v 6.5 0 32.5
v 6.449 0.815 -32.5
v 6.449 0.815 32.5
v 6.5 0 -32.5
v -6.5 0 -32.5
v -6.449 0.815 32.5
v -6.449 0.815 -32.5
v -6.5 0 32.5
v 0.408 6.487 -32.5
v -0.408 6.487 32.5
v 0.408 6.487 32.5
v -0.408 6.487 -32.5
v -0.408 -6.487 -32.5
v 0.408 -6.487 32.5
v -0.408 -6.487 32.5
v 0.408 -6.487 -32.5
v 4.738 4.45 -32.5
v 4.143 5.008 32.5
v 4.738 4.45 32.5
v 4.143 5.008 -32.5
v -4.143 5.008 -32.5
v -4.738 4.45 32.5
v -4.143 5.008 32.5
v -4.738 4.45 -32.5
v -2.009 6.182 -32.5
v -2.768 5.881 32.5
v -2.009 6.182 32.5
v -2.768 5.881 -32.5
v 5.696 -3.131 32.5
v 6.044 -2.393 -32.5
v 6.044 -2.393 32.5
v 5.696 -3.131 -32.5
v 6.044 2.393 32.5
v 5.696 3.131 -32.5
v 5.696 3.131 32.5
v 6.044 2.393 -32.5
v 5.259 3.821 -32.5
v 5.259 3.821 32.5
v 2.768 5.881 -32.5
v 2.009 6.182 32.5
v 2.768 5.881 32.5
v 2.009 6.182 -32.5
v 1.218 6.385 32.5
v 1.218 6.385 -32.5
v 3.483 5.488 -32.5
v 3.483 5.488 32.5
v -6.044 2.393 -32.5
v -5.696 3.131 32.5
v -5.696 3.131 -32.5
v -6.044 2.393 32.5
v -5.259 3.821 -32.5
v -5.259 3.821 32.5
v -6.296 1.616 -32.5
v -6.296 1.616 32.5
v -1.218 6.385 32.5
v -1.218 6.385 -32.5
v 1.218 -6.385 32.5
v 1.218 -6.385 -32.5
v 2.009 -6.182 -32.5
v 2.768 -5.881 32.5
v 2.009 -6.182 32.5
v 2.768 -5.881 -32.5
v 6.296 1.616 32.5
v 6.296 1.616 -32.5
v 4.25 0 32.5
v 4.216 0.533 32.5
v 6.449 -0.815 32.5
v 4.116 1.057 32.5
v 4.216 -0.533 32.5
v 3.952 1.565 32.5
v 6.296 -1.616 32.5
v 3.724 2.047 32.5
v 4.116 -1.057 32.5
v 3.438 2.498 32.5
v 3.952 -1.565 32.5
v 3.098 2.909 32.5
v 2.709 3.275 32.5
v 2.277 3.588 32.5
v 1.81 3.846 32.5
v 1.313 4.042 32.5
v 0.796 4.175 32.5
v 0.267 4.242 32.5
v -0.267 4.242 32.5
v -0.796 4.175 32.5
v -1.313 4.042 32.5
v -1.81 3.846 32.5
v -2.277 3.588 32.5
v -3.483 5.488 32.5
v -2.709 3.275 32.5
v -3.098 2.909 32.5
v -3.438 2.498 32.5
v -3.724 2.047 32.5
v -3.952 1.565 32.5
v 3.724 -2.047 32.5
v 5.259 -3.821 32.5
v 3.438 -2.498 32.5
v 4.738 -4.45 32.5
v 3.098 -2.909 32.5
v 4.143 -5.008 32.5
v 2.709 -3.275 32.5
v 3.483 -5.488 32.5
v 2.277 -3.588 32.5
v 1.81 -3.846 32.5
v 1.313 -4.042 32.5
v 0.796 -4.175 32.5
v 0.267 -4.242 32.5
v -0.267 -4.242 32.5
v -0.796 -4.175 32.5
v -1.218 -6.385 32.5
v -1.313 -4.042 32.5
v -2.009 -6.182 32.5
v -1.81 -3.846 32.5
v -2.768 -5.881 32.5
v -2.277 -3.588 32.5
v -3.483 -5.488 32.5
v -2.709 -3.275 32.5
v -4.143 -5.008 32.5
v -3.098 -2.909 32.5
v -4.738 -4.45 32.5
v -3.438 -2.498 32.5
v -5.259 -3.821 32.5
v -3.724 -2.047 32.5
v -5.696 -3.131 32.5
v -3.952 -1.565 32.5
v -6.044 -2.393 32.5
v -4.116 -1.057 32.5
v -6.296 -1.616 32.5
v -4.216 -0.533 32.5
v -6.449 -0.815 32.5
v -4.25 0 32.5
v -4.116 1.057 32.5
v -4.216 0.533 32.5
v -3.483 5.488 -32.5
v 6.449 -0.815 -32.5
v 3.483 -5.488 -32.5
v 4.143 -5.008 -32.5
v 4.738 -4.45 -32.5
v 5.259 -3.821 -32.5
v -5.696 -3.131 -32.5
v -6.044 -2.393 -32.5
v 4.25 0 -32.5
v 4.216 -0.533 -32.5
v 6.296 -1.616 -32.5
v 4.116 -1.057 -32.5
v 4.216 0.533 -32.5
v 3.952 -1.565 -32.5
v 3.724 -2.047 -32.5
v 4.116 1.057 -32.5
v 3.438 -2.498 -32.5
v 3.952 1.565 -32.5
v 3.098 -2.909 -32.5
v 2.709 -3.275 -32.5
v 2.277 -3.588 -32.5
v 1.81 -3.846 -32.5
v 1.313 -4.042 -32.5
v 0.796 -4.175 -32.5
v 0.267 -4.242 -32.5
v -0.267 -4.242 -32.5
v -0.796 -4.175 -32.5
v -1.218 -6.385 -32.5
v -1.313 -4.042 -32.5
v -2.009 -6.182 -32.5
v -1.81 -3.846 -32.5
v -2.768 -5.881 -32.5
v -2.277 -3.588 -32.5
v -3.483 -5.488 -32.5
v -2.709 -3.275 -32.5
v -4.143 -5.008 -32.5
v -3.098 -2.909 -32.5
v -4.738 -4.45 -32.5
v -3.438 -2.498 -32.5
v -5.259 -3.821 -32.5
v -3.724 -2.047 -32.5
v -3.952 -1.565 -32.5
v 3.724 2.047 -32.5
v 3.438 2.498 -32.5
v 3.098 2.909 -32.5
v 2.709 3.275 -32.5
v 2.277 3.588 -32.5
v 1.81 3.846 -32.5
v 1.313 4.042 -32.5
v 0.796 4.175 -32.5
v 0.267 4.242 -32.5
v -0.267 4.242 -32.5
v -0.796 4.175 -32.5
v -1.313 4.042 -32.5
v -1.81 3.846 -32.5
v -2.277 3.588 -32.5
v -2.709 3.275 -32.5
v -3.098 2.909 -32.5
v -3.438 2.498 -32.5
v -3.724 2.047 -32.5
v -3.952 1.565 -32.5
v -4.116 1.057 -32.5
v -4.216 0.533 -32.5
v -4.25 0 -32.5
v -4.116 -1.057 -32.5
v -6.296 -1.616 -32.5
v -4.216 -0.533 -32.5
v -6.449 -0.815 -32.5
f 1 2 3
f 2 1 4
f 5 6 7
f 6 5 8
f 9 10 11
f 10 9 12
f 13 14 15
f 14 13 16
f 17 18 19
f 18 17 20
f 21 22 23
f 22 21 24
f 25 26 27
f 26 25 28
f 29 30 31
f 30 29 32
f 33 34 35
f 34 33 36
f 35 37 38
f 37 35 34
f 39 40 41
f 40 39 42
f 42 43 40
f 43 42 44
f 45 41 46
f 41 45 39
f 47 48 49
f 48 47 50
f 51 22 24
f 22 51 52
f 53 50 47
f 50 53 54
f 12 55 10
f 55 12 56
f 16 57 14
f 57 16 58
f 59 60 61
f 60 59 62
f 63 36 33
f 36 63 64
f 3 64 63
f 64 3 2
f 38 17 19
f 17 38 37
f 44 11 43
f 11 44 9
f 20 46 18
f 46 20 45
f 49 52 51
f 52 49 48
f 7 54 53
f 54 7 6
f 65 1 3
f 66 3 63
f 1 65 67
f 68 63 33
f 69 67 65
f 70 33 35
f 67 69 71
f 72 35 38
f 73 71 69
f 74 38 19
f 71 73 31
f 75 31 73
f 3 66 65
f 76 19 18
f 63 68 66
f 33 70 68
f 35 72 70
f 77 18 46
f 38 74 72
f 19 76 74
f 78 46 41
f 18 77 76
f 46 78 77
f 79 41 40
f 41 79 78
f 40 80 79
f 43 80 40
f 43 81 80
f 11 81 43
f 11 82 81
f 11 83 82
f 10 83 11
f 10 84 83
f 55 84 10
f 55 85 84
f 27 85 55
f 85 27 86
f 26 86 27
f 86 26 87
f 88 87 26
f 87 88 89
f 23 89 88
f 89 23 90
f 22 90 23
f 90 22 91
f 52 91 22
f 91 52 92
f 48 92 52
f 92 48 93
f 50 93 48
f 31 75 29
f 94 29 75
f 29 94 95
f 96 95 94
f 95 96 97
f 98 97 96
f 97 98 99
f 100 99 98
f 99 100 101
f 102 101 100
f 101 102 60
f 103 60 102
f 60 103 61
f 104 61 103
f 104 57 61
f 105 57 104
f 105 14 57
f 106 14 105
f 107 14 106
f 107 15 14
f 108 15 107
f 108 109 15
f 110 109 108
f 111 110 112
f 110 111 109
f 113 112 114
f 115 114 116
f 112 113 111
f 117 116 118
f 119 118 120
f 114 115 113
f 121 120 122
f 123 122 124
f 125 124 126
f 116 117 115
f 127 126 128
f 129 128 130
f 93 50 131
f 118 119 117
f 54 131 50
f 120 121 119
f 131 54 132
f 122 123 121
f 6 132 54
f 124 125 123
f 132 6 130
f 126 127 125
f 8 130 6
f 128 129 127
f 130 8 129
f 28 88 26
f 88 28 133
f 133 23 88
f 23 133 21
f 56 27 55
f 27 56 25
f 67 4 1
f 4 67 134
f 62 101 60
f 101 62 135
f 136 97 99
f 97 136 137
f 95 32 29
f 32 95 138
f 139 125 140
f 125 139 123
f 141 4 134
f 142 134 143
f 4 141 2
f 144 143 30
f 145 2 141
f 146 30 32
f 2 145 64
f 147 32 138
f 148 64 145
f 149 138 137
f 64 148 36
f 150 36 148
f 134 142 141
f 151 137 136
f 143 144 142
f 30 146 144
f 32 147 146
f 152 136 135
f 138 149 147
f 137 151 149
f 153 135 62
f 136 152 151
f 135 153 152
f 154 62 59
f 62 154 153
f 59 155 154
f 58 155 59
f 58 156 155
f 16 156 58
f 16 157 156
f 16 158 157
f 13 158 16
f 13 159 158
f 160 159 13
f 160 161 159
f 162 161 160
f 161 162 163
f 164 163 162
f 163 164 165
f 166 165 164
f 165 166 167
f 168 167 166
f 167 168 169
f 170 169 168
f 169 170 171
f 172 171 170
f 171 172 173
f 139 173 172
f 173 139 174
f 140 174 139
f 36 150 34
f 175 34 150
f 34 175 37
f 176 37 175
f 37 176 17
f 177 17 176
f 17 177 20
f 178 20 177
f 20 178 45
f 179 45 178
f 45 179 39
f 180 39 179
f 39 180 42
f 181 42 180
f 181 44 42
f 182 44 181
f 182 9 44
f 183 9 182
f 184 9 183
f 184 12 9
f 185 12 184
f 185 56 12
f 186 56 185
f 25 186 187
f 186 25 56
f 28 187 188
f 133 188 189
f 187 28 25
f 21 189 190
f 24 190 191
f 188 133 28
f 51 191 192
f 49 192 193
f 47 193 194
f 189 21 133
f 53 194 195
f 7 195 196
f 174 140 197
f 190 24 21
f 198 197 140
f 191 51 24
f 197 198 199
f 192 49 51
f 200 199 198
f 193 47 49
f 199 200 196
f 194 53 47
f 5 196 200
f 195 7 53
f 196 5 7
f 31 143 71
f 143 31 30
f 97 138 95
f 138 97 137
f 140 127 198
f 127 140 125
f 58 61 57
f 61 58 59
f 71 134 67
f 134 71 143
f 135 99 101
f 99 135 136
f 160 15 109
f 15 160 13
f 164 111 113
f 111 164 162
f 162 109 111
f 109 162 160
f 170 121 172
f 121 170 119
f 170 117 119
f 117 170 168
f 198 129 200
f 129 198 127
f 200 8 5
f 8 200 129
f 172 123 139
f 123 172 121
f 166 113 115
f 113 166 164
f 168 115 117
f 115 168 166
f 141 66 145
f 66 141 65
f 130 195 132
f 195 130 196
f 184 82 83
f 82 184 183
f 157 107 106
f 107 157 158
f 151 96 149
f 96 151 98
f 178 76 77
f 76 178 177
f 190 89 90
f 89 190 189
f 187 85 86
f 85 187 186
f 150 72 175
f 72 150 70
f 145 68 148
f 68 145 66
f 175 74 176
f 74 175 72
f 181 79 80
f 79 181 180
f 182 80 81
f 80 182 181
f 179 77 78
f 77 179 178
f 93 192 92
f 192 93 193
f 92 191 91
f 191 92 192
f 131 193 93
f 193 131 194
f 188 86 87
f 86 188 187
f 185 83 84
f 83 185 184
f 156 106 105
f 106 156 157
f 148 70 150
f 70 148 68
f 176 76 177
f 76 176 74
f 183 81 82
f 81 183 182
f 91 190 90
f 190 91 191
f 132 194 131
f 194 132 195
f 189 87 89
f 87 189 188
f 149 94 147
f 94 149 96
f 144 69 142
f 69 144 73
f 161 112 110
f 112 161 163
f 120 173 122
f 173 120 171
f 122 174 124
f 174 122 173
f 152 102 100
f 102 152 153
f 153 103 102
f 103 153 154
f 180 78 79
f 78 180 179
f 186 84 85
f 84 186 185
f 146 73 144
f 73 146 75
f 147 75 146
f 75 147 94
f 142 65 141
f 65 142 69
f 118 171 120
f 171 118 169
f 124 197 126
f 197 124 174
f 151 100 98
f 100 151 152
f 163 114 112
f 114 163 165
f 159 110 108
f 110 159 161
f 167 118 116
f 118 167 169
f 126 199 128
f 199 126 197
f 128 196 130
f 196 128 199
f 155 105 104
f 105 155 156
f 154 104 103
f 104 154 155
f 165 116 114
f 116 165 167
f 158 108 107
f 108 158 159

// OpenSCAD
$fn = 50;


difference() {
	union() {
		translate(v = [0, 0, -32.5000000000]) {
			cylinder(h = 65, r = 6.5000000000);
		}
	}
	union() {
		translate(v = [0, 0, -100.0000000000]) {
			cylinder(h = 200, r = 4.2500000000);
		}
	}
}
